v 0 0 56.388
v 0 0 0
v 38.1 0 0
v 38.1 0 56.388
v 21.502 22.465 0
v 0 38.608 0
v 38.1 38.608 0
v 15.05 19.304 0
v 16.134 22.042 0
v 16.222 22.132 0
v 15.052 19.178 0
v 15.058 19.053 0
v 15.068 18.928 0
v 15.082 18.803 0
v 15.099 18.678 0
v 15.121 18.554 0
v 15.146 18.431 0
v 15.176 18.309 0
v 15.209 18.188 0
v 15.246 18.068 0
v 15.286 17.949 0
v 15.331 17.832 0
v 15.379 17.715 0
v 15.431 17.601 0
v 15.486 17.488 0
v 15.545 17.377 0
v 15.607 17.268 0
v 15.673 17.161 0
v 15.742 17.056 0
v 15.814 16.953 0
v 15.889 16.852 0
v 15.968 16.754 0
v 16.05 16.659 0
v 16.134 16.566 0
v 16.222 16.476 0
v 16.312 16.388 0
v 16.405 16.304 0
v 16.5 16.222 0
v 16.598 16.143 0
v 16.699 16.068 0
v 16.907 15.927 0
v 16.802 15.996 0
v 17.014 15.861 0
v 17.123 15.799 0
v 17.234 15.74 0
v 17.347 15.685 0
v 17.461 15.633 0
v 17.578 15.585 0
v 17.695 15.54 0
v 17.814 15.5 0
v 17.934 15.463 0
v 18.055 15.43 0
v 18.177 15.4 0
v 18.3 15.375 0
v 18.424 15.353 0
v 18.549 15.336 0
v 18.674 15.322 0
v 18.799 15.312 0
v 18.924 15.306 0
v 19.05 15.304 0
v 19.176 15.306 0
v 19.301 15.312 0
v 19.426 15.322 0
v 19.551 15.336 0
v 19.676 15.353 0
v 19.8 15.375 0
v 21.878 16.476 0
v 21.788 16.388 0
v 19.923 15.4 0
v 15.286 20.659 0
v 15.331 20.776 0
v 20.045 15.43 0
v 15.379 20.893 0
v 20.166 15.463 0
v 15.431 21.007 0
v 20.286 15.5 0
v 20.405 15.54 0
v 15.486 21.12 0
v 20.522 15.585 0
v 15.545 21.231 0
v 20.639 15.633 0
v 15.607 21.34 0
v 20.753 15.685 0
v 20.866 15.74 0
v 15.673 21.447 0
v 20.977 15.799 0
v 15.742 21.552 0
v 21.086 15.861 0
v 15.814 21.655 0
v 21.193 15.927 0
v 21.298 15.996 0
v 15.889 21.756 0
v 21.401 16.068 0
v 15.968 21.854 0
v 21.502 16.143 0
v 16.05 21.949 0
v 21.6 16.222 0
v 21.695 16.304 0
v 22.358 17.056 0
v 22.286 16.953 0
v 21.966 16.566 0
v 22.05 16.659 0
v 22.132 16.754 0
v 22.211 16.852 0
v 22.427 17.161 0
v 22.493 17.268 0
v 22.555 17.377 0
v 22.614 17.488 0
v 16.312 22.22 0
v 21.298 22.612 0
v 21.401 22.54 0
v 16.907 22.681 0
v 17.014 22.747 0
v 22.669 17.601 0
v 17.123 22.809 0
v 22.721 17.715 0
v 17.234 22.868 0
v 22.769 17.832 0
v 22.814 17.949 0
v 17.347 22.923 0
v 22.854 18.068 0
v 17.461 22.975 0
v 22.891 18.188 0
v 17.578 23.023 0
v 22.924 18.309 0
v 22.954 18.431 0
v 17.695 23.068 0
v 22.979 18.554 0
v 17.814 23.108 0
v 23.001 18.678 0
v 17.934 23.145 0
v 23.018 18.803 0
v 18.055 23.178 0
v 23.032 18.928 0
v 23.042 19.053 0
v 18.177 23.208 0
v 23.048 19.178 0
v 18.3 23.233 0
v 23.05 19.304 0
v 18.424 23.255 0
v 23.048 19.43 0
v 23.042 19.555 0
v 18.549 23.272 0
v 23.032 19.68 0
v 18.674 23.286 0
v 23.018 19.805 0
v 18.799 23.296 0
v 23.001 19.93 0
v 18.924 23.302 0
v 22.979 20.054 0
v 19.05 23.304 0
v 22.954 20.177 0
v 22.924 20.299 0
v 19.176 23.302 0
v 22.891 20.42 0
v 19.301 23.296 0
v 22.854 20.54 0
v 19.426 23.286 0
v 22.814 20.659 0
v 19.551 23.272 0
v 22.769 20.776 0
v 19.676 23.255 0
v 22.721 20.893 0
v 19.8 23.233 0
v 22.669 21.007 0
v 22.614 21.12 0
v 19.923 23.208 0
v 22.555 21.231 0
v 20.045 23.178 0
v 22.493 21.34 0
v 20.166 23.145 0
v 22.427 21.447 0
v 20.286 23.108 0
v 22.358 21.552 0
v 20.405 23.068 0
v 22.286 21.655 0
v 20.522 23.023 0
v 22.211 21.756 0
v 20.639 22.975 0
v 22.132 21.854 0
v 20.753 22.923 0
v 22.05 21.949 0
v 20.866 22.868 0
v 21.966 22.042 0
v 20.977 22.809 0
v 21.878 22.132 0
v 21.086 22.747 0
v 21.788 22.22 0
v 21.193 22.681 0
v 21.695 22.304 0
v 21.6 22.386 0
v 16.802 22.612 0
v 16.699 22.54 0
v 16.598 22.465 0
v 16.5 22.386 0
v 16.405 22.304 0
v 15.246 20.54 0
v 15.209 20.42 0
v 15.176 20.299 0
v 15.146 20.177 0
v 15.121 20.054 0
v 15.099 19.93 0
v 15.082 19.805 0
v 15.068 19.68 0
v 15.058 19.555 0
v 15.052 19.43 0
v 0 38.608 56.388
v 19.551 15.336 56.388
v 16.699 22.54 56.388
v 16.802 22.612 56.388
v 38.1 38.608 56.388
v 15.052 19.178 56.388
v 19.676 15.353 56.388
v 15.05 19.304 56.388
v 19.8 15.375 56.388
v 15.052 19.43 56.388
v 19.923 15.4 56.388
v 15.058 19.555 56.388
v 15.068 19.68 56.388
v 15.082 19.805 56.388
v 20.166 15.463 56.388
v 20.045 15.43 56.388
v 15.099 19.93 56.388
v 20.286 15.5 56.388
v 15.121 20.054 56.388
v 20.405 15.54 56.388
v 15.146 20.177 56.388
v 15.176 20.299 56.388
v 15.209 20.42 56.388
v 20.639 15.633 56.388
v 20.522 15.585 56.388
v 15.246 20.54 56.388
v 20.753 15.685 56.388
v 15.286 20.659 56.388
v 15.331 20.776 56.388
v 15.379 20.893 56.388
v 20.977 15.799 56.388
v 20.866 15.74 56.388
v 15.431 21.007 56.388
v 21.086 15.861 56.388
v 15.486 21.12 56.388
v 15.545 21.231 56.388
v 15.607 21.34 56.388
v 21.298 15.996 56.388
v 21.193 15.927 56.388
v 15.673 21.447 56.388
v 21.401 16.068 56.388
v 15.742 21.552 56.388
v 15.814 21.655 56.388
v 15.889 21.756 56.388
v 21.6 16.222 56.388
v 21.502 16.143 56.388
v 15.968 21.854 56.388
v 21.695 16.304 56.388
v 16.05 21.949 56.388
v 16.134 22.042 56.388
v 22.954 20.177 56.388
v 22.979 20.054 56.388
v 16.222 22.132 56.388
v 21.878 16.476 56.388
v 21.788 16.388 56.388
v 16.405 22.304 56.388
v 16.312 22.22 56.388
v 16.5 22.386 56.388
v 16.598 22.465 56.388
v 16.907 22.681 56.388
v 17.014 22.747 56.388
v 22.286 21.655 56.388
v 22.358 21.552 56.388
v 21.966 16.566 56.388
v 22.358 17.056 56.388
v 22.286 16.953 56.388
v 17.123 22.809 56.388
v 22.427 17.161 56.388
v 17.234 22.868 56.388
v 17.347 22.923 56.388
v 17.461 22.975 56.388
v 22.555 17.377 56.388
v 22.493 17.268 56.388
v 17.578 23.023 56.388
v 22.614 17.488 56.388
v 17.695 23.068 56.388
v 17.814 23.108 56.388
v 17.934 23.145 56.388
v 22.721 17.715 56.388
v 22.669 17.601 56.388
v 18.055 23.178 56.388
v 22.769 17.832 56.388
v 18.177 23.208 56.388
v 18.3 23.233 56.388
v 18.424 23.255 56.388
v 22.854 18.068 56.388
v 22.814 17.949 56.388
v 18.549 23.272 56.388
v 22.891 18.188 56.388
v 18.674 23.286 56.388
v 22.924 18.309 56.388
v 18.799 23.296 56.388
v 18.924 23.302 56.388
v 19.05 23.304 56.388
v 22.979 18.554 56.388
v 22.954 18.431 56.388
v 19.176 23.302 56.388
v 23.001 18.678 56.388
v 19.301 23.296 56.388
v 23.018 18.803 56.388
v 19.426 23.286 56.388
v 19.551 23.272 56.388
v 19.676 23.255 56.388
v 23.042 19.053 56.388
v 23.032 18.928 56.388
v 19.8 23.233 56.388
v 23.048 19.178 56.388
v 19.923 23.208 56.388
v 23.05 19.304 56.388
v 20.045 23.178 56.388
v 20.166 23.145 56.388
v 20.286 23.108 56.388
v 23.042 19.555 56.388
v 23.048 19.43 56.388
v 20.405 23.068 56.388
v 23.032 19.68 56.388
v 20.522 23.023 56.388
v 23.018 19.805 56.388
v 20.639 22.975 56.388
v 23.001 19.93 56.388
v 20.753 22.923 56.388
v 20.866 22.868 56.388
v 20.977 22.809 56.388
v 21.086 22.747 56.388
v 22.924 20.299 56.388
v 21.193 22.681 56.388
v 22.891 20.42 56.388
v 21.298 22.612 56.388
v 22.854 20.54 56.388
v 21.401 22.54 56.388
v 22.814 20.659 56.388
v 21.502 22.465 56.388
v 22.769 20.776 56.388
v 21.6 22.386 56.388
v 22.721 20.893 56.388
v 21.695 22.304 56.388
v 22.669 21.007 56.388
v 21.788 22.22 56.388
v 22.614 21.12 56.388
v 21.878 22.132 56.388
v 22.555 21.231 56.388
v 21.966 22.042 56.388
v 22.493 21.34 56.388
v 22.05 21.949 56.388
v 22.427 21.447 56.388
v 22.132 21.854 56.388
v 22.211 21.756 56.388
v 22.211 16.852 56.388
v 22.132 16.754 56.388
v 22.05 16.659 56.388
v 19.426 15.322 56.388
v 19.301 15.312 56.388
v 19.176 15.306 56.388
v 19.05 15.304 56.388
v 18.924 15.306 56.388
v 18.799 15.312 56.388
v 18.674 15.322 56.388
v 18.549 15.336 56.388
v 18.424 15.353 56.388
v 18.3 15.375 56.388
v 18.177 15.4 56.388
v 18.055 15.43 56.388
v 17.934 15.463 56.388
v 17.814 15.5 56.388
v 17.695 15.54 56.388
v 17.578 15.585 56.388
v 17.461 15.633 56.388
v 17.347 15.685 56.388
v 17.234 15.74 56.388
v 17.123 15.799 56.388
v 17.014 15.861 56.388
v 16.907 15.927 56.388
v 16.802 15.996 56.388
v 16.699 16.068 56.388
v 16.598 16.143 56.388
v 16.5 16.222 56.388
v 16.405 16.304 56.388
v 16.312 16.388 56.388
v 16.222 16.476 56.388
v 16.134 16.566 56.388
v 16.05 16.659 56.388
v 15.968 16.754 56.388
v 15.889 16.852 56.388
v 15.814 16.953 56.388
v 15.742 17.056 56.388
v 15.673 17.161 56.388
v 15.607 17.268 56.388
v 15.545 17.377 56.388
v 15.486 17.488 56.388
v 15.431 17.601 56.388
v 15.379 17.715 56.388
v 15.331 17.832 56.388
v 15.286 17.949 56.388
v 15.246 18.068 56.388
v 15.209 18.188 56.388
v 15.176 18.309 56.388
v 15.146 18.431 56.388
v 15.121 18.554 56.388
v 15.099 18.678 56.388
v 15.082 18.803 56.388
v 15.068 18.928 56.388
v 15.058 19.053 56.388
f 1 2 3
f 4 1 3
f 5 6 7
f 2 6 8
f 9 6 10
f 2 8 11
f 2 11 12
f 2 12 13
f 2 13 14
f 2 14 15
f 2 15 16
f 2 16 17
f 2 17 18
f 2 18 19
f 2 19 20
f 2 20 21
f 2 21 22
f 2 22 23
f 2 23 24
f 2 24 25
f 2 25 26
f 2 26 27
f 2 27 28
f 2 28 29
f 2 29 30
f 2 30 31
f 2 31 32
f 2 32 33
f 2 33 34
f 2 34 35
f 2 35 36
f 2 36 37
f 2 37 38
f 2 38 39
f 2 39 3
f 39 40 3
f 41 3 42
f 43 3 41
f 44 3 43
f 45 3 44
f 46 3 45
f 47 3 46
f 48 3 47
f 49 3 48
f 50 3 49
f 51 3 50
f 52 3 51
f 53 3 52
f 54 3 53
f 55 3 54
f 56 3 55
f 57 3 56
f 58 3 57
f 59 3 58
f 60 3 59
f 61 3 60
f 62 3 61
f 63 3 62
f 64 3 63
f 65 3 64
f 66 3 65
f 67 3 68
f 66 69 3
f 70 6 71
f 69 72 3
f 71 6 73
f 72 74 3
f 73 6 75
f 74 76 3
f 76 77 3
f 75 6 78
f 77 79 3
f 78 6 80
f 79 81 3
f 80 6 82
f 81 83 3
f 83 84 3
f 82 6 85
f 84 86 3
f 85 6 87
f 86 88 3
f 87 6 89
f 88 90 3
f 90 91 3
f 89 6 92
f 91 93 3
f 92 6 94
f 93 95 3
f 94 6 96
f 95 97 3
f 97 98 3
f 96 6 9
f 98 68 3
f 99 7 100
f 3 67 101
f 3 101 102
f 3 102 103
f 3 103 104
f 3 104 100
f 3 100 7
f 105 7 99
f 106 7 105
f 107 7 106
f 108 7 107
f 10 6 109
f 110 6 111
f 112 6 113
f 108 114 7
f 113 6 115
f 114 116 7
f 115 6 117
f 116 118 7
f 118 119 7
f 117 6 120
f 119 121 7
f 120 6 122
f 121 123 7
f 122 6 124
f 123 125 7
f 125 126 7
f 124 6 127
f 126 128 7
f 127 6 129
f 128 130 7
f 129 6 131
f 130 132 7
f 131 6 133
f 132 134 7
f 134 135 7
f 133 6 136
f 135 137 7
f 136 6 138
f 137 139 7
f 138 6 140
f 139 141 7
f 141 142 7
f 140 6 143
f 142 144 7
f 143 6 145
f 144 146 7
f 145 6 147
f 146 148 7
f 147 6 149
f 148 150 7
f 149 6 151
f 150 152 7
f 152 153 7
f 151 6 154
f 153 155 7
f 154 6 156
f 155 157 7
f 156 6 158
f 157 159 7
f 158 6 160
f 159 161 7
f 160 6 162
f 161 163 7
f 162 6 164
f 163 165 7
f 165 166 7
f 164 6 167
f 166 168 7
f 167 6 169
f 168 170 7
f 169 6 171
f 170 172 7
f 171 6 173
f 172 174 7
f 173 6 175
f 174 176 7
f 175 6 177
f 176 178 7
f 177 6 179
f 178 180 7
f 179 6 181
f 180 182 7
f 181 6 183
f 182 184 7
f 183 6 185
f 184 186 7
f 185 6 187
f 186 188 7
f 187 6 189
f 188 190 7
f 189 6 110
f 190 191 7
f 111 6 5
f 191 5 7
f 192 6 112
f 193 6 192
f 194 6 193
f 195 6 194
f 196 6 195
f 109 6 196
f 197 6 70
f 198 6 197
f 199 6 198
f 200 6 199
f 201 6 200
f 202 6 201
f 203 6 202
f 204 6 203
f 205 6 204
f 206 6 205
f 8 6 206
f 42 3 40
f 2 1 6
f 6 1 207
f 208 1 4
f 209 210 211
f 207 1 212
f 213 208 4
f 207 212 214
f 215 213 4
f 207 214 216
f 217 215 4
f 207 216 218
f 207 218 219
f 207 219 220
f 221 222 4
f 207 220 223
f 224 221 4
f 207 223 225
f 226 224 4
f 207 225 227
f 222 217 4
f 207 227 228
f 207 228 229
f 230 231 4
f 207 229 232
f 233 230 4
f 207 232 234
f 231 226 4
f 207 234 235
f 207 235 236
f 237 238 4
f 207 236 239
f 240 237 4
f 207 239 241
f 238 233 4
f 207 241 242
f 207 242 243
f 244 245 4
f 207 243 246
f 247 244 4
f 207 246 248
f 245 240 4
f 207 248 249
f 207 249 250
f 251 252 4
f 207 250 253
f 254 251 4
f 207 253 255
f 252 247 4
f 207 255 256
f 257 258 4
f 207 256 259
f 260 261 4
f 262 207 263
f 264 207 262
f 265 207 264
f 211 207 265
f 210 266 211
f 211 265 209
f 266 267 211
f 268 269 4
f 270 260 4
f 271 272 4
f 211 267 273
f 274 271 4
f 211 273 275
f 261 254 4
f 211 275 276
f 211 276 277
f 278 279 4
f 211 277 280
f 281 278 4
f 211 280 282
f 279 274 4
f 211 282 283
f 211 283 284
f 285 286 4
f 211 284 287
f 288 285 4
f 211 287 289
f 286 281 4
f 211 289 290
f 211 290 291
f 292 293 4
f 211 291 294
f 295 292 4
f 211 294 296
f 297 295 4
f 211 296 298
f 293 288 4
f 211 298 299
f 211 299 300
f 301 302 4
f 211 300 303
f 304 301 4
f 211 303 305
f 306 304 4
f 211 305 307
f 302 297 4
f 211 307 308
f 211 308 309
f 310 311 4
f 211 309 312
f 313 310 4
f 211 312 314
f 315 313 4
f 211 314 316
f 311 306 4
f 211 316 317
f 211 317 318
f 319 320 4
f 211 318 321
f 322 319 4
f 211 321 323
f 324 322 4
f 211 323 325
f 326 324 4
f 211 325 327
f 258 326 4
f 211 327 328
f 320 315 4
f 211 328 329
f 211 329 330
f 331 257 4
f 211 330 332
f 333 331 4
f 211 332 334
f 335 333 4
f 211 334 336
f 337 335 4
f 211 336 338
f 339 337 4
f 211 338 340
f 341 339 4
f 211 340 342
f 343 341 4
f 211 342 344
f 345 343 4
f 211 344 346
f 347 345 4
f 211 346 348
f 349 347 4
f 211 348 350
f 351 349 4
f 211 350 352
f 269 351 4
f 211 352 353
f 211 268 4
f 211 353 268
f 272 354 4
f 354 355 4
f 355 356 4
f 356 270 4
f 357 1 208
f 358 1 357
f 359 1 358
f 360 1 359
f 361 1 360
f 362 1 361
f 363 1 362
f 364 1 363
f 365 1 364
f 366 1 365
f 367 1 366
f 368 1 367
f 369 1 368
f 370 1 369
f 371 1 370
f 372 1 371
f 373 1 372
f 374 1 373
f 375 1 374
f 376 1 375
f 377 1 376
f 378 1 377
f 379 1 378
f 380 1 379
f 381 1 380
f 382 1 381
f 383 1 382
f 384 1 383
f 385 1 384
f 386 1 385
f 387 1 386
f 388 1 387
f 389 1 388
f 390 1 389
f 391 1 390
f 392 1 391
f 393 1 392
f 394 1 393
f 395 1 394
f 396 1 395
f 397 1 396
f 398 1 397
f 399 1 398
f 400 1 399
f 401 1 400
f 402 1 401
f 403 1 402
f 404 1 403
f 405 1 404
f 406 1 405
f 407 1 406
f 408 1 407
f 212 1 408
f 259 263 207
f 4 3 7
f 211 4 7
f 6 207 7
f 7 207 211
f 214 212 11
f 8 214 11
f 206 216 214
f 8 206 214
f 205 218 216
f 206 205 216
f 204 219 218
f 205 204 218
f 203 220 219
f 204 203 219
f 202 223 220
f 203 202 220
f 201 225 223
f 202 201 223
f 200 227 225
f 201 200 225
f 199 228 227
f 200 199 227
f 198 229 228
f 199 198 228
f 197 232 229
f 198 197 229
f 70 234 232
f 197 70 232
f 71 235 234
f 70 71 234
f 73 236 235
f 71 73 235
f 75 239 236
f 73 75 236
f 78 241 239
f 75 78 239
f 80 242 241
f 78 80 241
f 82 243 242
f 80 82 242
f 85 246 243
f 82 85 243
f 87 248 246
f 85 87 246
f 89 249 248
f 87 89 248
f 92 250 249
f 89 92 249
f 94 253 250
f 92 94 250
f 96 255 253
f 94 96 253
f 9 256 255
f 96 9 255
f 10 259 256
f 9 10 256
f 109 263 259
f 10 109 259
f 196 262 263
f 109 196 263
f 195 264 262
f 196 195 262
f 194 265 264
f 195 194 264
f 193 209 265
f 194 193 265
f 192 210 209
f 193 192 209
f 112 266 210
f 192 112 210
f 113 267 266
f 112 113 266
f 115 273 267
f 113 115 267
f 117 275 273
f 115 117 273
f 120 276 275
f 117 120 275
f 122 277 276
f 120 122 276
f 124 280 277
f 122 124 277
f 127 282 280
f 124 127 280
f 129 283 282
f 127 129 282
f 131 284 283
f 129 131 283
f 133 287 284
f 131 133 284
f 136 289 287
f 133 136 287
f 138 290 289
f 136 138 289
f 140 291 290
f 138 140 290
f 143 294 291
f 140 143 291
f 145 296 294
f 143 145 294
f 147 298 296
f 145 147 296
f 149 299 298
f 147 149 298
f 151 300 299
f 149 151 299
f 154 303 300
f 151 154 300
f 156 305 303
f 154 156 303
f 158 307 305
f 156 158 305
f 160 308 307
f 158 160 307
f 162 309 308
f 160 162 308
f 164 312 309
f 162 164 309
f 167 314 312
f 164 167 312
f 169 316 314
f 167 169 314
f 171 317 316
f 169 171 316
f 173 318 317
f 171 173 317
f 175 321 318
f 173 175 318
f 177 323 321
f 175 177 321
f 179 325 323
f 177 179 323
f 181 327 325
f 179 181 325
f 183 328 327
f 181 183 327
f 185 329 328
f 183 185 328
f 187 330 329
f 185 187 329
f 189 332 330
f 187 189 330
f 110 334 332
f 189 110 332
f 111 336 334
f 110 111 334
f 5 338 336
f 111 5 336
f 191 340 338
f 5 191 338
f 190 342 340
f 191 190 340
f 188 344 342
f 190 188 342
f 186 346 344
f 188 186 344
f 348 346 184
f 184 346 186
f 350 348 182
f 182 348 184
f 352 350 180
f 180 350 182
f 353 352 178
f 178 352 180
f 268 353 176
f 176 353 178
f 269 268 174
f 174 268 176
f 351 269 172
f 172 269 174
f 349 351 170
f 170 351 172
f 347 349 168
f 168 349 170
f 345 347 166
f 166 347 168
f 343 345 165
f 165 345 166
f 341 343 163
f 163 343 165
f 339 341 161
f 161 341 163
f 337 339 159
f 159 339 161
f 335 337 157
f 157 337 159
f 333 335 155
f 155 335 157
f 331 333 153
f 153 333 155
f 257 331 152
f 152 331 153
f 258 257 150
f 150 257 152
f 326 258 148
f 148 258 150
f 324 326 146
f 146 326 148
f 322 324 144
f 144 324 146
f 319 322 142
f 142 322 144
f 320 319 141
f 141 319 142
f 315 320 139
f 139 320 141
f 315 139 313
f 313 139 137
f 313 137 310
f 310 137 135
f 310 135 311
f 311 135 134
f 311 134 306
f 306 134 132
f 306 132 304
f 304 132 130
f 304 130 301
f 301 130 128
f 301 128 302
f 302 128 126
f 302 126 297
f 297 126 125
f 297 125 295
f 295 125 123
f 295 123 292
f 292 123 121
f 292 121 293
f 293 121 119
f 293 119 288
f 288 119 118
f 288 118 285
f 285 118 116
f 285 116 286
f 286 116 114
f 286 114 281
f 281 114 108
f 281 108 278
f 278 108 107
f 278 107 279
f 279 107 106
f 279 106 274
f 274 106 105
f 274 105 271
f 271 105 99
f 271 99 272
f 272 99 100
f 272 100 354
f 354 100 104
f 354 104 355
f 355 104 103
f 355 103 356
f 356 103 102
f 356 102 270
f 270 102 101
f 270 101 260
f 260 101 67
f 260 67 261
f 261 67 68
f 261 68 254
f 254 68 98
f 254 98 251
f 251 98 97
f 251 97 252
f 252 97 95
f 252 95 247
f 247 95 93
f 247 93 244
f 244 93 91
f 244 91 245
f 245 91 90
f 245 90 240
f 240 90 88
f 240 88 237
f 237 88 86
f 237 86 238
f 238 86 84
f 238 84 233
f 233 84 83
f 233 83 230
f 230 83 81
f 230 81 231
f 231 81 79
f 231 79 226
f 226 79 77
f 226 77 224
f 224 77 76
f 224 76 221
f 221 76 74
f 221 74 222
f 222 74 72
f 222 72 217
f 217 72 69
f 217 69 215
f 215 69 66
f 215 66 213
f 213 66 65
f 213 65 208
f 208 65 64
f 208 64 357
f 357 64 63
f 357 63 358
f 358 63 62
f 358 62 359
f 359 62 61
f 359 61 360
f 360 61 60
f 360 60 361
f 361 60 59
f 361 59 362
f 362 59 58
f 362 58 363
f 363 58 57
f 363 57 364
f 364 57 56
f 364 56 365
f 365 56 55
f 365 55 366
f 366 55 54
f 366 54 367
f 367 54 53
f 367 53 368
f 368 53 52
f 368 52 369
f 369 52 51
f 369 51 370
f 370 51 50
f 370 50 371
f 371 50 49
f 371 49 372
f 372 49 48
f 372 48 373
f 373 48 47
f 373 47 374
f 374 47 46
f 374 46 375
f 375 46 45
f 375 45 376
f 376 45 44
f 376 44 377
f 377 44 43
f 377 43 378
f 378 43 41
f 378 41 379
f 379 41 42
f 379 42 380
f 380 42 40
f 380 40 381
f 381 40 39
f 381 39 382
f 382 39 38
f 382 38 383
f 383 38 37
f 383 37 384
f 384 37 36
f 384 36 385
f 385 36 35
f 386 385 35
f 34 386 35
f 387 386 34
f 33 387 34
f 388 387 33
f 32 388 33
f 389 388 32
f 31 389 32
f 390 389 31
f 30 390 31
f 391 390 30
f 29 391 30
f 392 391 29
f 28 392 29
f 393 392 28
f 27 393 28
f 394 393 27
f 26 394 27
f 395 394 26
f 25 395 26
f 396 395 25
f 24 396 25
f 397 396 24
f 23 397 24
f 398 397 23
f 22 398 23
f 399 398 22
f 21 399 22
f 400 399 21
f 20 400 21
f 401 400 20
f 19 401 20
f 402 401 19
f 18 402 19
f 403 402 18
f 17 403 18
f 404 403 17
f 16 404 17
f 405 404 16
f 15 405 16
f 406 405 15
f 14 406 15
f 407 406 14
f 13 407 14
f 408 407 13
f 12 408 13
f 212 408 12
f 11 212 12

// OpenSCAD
width = 25.4 * 1.5;
depth = 25.4 * 1.52;
height = 2.22 * 25.4;
bolt = 8;

#difference()
{
linear_extrude(height = height )
{
	polygon(points=[[0, 0],[width, 0],[width, depth], [0, depth]]);

}

linear_extrude(height = height)
{
	translate([width/2, depth/2,0])
	{
		circle($fn = 200, r = bolt/2);
	}
}
}
